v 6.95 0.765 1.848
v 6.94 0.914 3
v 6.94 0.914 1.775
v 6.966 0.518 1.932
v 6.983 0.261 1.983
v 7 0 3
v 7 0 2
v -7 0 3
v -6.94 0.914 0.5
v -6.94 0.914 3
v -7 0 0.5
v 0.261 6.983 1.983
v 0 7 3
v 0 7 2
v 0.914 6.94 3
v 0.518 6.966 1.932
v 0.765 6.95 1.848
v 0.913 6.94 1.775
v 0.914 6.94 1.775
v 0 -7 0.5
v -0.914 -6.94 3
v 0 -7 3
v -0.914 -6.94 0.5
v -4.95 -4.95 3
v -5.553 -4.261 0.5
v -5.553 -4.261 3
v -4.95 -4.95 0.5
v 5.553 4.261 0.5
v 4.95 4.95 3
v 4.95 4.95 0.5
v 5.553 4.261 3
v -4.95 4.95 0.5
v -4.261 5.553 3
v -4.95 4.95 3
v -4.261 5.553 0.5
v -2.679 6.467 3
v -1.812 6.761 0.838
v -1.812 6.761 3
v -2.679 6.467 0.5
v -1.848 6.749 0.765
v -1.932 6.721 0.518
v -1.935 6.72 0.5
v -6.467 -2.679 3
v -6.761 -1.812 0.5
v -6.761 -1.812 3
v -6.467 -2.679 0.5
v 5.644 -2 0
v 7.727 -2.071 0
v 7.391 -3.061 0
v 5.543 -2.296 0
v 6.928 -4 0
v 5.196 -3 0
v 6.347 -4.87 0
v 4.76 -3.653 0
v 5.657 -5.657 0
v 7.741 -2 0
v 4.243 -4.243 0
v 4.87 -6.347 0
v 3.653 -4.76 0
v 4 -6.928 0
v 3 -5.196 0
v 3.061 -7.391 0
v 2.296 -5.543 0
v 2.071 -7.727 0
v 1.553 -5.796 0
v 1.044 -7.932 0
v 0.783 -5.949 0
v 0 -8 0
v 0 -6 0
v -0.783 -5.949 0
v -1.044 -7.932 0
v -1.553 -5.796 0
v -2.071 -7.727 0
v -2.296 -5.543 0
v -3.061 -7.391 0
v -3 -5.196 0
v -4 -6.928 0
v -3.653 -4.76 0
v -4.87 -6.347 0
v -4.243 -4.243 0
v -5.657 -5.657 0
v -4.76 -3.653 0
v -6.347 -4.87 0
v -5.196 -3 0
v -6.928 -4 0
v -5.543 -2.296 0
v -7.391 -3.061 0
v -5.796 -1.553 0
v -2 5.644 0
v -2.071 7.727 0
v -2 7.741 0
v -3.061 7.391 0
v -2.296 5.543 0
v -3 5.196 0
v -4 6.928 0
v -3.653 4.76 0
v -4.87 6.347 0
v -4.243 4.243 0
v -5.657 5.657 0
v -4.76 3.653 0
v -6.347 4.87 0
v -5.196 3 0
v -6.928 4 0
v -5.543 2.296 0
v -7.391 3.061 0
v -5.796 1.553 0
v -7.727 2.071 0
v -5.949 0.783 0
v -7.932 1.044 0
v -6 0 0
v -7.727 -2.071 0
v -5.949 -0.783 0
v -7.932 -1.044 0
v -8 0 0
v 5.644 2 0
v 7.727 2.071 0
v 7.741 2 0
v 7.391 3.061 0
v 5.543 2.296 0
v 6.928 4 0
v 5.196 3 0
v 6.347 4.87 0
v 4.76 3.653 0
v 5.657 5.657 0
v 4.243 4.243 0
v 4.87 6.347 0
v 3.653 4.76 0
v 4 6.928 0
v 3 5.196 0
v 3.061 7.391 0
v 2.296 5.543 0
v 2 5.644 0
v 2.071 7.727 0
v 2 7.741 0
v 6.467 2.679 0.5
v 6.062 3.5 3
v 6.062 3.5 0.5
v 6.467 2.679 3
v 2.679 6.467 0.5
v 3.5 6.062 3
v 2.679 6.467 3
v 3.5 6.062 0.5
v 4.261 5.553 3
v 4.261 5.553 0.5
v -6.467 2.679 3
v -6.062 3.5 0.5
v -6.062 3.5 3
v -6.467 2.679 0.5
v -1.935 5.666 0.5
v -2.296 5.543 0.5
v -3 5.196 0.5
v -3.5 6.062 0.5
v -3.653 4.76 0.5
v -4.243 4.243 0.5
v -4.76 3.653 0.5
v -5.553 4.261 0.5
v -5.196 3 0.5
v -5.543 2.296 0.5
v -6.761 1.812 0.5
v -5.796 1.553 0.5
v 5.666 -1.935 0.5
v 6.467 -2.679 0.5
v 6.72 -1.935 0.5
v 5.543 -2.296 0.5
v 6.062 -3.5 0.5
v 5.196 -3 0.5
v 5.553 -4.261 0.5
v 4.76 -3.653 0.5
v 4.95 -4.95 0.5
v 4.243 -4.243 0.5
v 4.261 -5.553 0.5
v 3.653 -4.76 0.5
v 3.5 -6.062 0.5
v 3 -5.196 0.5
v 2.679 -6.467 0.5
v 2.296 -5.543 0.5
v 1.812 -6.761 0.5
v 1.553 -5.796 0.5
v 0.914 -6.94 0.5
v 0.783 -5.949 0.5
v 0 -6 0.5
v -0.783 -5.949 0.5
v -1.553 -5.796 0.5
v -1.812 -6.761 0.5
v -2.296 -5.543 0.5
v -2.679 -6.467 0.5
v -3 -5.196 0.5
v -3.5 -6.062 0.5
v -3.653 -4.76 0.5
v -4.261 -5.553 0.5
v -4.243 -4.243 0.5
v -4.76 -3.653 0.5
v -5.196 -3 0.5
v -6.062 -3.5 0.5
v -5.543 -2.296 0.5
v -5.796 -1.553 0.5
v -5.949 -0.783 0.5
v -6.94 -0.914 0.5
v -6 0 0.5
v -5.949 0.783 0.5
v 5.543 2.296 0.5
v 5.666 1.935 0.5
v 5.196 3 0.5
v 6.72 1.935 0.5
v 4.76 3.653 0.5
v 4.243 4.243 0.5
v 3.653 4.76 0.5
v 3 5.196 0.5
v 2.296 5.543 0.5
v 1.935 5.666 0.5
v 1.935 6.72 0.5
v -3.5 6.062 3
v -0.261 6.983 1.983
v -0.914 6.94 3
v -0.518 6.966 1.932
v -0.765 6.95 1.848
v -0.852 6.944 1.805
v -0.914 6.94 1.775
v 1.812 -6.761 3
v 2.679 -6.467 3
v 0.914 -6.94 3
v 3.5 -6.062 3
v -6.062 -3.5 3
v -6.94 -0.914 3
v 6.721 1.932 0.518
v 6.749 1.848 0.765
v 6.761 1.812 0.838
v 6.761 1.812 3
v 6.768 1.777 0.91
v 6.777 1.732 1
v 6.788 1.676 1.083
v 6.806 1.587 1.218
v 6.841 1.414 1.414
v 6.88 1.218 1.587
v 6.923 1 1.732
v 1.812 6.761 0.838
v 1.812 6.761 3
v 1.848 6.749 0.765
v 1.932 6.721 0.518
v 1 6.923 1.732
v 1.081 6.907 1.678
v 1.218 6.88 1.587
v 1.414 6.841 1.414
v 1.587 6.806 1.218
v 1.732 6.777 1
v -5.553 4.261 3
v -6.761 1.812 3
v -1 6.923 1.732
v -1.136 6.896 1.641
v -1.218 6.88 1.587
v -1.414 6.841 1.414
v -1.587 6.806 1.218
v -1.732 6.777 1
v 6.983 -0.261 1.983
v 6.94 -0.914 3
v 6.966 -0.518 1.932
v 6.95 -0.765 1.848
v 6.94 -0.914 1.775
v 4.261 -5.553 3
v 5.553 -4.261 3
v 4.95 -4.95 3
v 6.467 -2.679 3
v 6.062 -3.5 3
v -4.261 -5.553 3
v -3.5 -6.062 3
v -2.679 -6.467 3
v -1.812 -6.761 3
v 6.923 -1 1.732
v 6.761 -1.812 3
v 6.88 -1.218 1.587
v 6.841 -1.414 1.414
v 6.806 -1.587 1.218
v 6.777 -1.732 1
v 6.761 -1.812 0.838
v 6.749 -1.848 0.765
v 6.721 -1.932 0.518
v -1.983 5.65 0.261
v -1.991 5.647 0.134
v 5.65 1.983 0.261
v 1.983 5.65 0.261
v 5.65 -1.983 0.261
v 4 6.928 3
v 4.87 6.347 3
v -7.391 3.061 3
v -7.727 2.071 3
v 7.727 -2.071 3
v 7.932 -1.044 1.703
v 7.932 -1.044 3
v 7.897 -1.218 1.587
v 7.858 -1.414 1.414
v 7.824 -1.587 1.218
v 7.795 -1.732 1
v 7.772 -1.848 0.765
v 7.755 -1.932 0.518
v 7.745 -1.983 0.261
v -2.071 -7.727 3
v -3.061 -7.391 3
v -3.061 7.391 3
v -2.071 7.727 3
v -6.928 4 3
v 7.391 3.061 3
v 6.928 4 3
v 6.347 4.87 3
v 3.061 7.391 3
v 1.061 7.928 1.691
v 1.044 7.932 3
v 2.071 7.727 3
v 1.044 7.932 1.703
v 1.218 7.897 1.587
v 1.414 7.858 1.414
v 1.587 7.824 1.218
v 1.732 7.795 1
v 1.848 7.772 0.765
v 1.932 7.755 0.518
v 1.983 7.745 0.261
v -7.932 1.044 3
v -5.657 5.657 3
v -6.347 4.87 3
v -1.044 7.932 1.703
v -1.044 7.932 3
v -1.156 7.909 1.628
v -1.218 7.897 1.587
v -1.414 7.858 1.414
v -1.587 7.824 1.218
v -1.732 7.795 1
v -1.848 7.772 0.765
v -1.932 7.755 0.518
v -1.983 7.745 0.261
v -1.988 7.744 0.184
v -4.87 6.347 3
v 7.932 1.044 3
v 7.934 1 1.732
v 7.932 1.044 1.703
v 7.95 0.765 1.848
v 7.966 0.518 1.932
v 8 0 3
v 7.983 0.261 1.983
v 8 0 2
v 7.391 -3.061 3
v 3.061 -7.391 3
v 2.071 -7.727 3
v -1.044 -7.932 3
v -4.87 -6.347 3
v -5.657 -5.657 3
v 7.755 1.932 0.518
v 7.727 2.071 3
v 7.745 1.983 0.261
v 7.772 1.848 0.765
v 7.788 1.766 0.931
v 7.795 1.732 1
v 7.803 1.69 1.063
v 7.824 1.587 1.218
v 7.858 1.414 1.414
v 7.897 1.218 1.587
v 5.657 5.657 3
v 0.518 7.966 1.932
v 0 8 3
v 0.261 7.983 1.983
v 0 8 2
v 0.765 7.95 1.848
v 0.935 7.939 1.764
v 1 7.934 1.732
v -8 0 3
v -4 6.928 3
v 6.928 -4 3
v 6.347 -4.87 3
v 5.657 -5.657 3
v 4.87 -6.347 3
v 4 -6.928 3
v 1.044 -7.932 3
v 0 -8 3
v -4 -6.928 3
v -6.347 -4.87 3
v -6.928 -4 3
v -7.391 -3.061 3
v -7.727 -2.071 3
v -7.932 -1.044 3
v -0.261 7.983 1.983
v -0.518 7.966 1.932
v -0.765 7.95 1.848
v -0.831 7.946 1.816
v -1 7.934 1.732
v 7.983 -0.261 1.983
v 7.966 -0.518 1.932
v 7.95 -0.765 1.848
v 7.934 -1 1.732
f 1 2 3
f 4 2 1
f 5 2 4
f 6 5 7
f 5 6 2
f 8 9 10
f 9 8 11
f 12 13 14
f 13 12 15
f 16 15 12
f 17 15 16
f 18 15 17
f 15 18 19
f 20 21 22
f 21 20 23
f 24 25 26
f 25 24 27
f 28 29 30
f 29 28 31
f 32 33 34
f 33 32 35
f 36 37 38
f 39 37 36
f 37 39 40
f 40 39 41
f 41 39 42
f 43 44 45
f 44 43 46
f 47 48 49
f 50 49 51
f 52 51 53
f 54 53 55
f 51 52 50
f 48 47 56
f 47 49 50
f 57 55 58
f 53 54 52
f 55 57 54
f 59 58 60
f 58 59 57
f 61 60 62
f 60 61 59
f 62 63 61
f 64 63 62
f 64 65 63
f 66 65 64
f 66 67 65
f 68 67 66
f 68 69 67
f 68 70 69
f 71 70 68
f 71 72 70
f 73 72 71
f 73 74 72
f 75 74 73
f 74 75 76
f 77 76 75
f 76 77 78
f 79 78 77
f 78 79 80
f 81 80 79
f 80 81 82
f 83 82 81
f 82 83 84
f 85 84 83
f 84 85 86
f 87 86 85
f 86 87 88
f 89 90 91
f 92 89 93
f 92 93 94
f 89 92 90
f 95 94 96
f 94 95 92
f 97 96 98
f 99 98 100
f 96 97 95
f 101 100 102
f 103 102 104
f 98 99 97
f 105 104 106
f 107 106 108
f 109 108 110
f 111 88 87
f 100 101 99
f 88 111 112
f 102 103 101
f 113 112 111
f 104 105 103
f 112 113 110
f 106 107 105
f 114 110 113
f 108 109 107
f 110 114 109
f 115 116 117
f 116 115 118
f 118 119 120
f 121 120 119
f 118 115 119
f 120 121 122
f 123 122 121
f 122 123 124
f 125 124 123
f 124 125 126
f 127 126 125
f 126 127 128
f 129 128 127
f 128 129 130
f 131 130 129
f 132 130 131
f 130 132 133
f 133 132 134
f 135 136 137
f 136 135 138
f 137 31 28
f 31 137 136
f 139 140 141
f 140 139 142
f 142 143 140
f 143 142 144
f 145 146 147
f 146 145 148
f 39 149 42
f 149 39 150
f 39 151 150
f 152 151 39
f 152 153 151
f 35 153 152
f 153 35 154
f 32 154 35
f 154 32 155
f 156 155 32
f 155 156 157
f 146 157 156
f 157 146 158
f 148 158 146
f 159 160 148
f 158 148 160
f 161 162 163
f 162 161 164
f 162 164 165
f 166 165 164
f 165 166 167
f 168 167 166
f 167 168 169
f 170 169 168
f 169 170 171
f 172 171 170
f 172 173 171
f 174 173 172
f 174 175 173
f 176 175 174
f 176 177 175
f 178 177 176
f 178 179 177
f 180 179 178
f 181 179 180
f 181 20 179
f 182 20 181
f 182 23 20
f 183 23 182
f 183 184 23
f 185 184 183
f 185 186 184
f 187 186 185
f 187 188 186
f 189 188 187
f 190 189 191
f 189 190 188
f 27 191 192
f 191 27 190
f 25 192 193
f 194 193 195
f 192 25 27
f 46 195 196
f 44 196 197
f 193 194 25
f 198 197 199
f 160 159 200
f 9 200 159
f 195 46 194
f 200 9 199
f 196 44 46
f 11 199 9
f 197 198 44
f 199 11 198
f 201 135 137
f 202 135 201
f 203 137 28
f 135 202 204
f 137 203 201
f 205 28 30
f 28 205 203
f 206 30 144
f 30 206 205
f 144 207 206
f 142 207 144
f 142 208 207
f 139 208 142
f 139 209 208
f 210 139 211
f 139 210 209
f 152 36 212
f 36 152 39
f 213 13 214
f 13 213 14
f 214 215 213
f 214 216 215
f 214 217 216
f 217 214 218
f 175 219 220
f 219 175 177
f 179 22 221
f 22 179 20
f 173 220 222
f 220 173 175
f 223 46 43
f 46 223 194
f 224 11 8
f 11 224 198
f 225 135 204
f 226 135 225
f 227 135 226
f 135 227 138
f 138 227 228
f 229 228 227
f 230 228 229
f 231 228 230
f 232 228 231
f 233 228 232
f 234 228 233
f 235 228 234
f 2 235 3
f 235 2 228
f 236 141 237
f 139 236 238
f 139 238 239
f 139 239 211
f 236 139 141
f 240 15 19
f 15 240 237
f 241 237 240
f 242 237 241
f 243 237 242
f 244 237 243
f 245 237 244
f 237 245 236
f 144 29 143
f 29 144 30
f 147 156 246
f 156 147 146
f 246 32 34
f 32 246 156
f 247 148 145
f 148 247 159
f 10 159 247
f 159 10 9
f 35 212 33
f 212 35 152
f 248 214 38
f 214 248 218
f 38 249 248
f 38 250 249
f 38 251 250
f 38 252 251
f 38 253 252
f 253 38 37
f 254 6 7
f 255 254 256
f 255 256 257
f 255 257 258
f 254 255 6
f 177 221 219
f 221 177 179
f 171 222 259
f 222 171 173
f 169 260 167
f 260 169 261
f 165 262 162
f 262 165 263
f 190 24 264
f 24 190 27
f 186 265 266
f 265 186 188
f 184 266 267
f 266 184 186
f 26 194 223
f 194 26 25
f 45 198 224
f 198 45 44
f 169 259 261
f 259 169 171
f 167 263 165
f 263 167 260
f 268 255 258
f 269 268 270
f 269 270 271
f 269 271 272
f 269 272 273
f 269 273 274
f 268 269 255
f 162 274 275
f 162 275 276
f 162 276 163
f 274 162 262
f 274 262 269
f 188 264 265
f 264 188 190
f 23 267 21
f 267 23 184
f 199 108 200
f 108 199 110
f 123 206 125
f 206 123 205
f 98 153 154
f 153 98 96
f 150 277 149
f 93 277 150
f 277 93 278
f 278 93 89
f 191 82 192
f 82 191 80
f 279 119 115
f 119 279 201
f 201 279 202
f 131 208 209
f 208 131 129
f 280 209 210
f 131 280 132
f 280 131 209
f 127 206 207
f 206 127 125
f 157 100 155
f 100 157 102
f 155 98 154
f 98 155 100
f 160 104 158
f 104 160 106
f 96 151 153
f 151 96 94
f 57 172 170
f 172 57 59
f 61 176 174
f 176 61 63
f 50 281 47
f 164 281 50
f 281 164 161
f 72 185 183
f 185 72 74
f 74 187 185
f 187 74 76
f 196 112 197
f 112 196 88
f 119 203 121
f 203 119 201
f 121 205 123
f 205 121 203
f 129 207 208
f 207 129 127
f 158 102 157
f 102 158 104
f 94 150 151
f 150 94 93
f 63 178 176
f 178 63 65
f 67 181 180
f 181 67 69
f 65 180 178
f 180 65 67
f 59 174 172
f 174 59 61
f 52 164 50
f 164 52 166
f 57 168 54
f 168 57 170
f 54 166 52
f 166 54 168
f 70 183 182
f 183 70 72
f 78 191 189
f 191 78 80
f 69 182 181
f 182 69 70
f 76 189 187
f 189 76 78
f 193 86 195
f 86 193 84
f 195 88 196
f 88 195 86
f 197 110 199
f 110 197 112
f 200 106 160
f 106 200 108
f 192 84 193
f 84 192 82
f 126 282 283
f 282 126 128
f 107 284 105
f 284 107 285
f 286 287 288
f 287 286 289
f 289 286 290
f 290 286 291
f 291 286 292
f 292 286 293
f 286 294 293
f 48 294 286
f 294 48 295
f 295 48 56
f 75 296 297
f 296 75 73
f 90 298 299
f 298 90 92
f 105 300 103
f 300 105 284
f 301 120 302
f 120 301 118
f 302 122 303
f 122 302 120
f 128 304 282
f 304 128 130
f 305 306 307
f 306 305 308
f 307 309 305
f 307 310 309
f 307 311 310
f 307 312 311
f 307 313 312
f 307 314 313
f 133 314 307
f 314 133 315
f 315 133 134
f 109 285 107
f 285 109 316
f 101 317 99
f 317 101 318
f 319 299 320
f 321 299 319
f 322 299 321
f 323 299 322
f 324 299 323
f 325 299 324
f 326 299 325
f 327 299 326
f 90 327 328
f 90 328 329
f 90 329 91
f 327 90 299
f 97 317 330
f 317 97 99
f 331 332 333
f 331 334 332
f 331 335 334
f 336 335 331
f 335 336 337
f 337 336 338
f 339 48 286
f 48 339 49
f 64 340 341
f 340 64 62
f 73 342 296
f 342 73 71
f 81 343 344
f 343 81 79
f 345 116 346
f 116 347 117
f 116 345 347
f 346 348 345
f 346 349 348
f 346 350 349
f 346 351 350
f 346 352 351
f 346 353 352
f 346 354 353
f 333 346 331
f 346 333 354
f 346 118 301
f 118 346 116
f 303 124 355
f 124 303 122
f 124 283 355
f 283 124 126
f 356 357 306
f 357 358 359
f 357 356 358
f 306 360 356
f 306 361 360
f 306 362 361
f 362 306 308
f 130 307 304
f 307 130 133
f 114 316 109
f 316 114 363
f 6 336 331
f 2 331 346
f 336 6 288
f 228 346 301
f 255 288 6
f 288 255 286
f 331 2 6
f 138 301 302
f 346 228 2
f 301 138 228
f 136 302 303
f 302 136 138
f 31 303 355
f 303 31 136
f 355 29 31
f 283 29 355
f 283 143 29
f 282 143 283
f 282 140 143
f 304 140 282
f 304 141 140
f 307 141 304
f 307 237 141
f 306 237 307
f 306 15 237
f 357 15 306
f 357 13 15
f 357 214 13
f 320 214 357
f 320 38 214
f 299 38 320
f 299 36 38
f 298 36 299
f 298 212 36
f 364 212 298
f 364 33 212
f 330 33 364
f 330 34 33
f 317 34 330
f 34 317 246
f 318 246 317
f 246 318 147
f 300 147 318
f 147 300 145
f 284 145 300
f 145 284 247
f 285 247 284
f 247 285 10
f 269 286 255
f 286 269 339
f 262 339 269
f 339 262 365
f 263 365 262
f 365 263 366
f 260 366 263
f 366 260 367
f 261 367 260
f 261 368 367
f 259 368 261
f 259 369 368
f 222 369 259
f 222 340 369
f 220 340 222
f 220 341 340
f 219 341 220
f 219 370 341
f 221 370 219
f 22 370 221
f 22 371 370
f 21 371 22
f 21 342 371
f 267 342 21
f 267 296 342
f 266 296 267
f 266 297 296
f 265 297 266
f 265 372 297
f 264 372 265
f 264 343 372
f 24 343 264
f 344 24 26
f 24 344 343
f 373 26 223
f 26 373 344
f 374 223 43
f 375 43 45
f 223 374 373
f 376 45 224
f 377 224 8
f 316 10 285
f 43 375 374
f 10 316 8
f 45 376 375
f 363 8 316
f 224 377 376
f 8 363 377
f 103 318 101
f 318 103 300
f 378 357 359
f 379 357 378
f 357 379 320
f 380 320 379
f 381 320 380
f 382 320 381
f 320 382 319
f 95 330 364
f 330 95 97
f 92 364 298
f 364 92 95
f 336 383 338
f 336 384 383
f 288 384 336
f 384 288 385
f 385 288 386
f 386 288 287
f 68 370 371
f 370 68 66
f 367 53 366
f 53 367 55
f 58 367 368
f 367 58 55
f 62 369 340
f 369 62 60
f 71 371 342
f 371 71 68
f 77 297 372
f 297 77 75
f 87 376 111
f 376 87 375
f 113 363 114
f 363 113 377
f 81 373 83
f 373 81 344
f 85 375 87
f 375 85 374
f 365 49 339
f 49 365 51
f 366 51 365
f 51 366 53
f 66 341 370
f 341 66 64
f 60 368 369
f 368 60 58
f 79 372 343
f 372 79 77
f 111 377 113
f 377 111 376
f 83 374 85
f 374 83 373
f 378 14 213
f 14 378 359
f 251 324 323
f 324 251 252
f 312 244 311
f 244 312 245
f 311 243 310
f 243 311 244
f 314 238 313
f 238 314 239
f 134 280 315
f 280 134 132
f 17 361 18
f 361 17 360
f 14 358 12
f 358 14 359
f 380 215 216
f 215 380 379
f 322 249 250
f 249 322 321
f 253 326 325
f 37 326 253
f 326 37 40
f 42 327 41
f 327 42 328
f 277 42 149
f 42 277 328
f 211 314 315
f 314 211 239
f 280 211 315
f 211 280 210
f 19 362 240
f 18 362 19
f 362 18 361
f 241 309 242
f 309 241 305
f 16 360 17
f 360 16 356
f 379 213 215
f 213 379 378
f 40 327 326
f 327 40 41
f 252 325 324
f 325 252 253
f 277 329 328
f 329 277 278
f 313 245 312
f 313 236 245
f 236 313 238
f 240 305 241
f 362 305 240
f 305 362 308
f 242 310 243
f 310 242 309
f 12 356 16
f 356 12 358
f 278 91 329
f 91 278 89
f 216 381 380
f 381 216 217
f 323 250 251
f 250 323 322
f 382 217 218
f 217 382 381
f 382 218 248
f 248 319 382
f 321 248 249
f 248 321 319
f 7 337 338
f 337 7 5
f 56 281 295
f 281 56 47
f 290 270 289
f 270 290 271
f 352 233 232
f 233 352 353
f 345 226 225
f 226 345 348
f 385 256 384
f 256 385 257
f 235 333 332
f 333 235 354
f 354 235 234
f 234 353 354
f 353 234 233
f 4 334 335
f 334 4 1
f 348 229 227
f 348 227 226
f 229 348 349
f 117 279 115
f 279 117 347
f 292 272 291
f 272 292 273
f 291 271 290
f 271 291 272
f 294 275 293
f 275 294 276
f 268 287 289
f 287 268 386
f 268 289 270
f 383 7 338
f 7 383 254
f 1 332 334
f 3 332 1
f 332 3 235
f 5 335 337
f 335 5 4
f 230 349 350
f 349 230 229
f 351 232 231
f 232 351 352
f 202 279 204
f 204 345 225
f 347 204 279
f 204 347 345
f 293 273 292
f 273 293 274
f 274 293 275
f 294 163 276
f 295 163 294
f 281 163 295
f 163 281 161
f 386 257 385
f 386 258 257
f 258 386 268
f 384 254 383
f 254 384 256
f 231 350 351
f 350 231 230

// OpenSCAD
// file: ../build_environments.scad
// build_environments.scad: modules to build level sections
//

module pool(diameter=10.0, wall_height=2.0, step_width=3.0, connections=[])
{
    difference() {
        union() {
        difference() {
            cylinder(h=0.5,r1=diameter+step_width,r2=diameter+step_width,$fn=48);
            translate([0,0,-0.1])
                cylinder(h=0.7,r1=diameter,r2=diameter,$fn=48);
        }
        difference() {
            cylinder(h=wall_height,r1=diameter+step_width+1.0,r2=diameter+step_width+1.0,$fn=48);
            translate([0,0,-0.1])
                cylinder(h=wall_height+0.2,r1=diameter+step_width,r2=diameter+step_width,$fn=48);
        }
        }
    
        for (c = connections)
        {
            rotate([0,90,0]) {
                angle = atan2(c[1],c[0]);
                rotate([-angle,0,0]) {
                    cylinder(h=diameter+5.0,r1=c[2],r2=c[2],$fn=48);
                }
            }
        }
    }
}

module straight(length=10.0, width=2.0, dy1=0.0, dy2=0.0, dz=0.0)
{
    dims = [0, 0, 0, 0, 0, (dz/length)];
    matrix = [
        [ 1, dims[0], dims[1], 0 ],
        [ dims[2], 1, dims[4], 0 ],
        [ dims[5], dims[3], 1, 0 ],
        [ 0, 0, 0, 1 ]
    ];
    multmatrix(matrix)
    difference() {
        translate([dy1,0,0])
        union() {
            rotate([0,90,0]) {
                difference() {
                    cylinder(h=(length-dy1-dy2),r1=width+1.0,r2=width+1.0,$fn=24);
                    translate([0,0,-0.1])
                        cylinder(h=(length-dy1-dy2+0.2),r1=width,r2=width,$fn=24);
                }
                difference() {
                    cylinder(h=1.0,r1=width+2.0,r2=width+2.0,$fn=24);
                    translate([0,0,-0.1])
                        cylinder(h=1.2,r1=width,r2=width,$fn=24);
                }
                translate([0,0,(length-dy1-dy2)-1.0]) {
                    difference() {
                        cylinder(h=1.0,r1=width+2.0,r2=width+2.0,$fn=24);
                        translate([0,0,-0.1])
                            cylinder(h=1.2,r1=width,r2=width,$fn=24);
                    }
                }
            }
        }
        translate([0,0,-(2*width+4.0)/2])
            cube([3*length,3*length,2*width+4.0],center=true);
    }
}

module curve(p0=[0,0], center=[0,0], dir=1, angle=0.0, width=2.0)
{
    radius = sqrt((p0[0]-center[0])*(p0[0]-center[0]) + (p0[1]-center[1])*(p0[1]-center[1]));
    if (dir == 0) {
        difference() {
            rotate([0,0,-90])
            difference() {
                rotate_extrude(angle = angle, convexity = 10, $fn=32)
                    translate([radius, 0, 0])
                        circle(r = width+1.0,$fn=24);
                rotate([0,0,-1.0])
                    rotate_extrude(angle = angle+2.0, convexity = 10, $fn=32)
                        translate([radius, 0, 0])
                            circle(r = width,$fn=24);
            }
            translate([0,0,-(2*width+4.0)/2])
                cube([5*radius,5*radius,2*width+4.0],center=true);
        }
    }
    else {
        difference() {
            rotate([0,0,90])
            difference() {
                rotate_extrude(angle = -angle, convexity = 10, $fn=32)
                    translate([radius, 0, 0])
                        circle(r = width+1.0,$fn=24);
                rotate([0,0,1.0])
                    rotate_extrude(angle = -angle-2.0, convexity = 10, $fn=32)
                        translate([radius, 0, 0])
                            circle(r = width,$fn=24);
            }
            translate([0,0,-(2*width+4.0)/2])
                cube([5*radius,5*radius,2*width+4.0],center=true);
        }
    }

}

// test pool
//pool(diameter=12.0000, wall_height=3.0000, step_width=3.0000, connections=[[0.0000,-26.0000,2.0000], [23.6074,0.0000,2.0000]]);

// test straight, slope
//straight(length=26.0000, width=2.0000, dy1=11.8322, dy2=6.7082, dz=0.0000);
//straight(length=29.1549, width=12.0000, dy1=0.0000, dy2=0.0000, dz=-15.0000);

// test curve
//curve(p0=[23.6074, 0.0000], center=[23.6074, 5.0000], dir=0, angle=60.1011, width=2.0000);
//curve(p0=[33.6426, 12.4219], center=[37.9771, 9.9295], dir=1, angle=120.4627, width=2.0000);
// main file
use <../build_environments.scad>;
pool(diameter=6.0000, wall_height=3.0000, step_width=1.0000, connections=[[0.0000,16.0000,2.0000], [16.0000,0.0000,2.0000]]);
